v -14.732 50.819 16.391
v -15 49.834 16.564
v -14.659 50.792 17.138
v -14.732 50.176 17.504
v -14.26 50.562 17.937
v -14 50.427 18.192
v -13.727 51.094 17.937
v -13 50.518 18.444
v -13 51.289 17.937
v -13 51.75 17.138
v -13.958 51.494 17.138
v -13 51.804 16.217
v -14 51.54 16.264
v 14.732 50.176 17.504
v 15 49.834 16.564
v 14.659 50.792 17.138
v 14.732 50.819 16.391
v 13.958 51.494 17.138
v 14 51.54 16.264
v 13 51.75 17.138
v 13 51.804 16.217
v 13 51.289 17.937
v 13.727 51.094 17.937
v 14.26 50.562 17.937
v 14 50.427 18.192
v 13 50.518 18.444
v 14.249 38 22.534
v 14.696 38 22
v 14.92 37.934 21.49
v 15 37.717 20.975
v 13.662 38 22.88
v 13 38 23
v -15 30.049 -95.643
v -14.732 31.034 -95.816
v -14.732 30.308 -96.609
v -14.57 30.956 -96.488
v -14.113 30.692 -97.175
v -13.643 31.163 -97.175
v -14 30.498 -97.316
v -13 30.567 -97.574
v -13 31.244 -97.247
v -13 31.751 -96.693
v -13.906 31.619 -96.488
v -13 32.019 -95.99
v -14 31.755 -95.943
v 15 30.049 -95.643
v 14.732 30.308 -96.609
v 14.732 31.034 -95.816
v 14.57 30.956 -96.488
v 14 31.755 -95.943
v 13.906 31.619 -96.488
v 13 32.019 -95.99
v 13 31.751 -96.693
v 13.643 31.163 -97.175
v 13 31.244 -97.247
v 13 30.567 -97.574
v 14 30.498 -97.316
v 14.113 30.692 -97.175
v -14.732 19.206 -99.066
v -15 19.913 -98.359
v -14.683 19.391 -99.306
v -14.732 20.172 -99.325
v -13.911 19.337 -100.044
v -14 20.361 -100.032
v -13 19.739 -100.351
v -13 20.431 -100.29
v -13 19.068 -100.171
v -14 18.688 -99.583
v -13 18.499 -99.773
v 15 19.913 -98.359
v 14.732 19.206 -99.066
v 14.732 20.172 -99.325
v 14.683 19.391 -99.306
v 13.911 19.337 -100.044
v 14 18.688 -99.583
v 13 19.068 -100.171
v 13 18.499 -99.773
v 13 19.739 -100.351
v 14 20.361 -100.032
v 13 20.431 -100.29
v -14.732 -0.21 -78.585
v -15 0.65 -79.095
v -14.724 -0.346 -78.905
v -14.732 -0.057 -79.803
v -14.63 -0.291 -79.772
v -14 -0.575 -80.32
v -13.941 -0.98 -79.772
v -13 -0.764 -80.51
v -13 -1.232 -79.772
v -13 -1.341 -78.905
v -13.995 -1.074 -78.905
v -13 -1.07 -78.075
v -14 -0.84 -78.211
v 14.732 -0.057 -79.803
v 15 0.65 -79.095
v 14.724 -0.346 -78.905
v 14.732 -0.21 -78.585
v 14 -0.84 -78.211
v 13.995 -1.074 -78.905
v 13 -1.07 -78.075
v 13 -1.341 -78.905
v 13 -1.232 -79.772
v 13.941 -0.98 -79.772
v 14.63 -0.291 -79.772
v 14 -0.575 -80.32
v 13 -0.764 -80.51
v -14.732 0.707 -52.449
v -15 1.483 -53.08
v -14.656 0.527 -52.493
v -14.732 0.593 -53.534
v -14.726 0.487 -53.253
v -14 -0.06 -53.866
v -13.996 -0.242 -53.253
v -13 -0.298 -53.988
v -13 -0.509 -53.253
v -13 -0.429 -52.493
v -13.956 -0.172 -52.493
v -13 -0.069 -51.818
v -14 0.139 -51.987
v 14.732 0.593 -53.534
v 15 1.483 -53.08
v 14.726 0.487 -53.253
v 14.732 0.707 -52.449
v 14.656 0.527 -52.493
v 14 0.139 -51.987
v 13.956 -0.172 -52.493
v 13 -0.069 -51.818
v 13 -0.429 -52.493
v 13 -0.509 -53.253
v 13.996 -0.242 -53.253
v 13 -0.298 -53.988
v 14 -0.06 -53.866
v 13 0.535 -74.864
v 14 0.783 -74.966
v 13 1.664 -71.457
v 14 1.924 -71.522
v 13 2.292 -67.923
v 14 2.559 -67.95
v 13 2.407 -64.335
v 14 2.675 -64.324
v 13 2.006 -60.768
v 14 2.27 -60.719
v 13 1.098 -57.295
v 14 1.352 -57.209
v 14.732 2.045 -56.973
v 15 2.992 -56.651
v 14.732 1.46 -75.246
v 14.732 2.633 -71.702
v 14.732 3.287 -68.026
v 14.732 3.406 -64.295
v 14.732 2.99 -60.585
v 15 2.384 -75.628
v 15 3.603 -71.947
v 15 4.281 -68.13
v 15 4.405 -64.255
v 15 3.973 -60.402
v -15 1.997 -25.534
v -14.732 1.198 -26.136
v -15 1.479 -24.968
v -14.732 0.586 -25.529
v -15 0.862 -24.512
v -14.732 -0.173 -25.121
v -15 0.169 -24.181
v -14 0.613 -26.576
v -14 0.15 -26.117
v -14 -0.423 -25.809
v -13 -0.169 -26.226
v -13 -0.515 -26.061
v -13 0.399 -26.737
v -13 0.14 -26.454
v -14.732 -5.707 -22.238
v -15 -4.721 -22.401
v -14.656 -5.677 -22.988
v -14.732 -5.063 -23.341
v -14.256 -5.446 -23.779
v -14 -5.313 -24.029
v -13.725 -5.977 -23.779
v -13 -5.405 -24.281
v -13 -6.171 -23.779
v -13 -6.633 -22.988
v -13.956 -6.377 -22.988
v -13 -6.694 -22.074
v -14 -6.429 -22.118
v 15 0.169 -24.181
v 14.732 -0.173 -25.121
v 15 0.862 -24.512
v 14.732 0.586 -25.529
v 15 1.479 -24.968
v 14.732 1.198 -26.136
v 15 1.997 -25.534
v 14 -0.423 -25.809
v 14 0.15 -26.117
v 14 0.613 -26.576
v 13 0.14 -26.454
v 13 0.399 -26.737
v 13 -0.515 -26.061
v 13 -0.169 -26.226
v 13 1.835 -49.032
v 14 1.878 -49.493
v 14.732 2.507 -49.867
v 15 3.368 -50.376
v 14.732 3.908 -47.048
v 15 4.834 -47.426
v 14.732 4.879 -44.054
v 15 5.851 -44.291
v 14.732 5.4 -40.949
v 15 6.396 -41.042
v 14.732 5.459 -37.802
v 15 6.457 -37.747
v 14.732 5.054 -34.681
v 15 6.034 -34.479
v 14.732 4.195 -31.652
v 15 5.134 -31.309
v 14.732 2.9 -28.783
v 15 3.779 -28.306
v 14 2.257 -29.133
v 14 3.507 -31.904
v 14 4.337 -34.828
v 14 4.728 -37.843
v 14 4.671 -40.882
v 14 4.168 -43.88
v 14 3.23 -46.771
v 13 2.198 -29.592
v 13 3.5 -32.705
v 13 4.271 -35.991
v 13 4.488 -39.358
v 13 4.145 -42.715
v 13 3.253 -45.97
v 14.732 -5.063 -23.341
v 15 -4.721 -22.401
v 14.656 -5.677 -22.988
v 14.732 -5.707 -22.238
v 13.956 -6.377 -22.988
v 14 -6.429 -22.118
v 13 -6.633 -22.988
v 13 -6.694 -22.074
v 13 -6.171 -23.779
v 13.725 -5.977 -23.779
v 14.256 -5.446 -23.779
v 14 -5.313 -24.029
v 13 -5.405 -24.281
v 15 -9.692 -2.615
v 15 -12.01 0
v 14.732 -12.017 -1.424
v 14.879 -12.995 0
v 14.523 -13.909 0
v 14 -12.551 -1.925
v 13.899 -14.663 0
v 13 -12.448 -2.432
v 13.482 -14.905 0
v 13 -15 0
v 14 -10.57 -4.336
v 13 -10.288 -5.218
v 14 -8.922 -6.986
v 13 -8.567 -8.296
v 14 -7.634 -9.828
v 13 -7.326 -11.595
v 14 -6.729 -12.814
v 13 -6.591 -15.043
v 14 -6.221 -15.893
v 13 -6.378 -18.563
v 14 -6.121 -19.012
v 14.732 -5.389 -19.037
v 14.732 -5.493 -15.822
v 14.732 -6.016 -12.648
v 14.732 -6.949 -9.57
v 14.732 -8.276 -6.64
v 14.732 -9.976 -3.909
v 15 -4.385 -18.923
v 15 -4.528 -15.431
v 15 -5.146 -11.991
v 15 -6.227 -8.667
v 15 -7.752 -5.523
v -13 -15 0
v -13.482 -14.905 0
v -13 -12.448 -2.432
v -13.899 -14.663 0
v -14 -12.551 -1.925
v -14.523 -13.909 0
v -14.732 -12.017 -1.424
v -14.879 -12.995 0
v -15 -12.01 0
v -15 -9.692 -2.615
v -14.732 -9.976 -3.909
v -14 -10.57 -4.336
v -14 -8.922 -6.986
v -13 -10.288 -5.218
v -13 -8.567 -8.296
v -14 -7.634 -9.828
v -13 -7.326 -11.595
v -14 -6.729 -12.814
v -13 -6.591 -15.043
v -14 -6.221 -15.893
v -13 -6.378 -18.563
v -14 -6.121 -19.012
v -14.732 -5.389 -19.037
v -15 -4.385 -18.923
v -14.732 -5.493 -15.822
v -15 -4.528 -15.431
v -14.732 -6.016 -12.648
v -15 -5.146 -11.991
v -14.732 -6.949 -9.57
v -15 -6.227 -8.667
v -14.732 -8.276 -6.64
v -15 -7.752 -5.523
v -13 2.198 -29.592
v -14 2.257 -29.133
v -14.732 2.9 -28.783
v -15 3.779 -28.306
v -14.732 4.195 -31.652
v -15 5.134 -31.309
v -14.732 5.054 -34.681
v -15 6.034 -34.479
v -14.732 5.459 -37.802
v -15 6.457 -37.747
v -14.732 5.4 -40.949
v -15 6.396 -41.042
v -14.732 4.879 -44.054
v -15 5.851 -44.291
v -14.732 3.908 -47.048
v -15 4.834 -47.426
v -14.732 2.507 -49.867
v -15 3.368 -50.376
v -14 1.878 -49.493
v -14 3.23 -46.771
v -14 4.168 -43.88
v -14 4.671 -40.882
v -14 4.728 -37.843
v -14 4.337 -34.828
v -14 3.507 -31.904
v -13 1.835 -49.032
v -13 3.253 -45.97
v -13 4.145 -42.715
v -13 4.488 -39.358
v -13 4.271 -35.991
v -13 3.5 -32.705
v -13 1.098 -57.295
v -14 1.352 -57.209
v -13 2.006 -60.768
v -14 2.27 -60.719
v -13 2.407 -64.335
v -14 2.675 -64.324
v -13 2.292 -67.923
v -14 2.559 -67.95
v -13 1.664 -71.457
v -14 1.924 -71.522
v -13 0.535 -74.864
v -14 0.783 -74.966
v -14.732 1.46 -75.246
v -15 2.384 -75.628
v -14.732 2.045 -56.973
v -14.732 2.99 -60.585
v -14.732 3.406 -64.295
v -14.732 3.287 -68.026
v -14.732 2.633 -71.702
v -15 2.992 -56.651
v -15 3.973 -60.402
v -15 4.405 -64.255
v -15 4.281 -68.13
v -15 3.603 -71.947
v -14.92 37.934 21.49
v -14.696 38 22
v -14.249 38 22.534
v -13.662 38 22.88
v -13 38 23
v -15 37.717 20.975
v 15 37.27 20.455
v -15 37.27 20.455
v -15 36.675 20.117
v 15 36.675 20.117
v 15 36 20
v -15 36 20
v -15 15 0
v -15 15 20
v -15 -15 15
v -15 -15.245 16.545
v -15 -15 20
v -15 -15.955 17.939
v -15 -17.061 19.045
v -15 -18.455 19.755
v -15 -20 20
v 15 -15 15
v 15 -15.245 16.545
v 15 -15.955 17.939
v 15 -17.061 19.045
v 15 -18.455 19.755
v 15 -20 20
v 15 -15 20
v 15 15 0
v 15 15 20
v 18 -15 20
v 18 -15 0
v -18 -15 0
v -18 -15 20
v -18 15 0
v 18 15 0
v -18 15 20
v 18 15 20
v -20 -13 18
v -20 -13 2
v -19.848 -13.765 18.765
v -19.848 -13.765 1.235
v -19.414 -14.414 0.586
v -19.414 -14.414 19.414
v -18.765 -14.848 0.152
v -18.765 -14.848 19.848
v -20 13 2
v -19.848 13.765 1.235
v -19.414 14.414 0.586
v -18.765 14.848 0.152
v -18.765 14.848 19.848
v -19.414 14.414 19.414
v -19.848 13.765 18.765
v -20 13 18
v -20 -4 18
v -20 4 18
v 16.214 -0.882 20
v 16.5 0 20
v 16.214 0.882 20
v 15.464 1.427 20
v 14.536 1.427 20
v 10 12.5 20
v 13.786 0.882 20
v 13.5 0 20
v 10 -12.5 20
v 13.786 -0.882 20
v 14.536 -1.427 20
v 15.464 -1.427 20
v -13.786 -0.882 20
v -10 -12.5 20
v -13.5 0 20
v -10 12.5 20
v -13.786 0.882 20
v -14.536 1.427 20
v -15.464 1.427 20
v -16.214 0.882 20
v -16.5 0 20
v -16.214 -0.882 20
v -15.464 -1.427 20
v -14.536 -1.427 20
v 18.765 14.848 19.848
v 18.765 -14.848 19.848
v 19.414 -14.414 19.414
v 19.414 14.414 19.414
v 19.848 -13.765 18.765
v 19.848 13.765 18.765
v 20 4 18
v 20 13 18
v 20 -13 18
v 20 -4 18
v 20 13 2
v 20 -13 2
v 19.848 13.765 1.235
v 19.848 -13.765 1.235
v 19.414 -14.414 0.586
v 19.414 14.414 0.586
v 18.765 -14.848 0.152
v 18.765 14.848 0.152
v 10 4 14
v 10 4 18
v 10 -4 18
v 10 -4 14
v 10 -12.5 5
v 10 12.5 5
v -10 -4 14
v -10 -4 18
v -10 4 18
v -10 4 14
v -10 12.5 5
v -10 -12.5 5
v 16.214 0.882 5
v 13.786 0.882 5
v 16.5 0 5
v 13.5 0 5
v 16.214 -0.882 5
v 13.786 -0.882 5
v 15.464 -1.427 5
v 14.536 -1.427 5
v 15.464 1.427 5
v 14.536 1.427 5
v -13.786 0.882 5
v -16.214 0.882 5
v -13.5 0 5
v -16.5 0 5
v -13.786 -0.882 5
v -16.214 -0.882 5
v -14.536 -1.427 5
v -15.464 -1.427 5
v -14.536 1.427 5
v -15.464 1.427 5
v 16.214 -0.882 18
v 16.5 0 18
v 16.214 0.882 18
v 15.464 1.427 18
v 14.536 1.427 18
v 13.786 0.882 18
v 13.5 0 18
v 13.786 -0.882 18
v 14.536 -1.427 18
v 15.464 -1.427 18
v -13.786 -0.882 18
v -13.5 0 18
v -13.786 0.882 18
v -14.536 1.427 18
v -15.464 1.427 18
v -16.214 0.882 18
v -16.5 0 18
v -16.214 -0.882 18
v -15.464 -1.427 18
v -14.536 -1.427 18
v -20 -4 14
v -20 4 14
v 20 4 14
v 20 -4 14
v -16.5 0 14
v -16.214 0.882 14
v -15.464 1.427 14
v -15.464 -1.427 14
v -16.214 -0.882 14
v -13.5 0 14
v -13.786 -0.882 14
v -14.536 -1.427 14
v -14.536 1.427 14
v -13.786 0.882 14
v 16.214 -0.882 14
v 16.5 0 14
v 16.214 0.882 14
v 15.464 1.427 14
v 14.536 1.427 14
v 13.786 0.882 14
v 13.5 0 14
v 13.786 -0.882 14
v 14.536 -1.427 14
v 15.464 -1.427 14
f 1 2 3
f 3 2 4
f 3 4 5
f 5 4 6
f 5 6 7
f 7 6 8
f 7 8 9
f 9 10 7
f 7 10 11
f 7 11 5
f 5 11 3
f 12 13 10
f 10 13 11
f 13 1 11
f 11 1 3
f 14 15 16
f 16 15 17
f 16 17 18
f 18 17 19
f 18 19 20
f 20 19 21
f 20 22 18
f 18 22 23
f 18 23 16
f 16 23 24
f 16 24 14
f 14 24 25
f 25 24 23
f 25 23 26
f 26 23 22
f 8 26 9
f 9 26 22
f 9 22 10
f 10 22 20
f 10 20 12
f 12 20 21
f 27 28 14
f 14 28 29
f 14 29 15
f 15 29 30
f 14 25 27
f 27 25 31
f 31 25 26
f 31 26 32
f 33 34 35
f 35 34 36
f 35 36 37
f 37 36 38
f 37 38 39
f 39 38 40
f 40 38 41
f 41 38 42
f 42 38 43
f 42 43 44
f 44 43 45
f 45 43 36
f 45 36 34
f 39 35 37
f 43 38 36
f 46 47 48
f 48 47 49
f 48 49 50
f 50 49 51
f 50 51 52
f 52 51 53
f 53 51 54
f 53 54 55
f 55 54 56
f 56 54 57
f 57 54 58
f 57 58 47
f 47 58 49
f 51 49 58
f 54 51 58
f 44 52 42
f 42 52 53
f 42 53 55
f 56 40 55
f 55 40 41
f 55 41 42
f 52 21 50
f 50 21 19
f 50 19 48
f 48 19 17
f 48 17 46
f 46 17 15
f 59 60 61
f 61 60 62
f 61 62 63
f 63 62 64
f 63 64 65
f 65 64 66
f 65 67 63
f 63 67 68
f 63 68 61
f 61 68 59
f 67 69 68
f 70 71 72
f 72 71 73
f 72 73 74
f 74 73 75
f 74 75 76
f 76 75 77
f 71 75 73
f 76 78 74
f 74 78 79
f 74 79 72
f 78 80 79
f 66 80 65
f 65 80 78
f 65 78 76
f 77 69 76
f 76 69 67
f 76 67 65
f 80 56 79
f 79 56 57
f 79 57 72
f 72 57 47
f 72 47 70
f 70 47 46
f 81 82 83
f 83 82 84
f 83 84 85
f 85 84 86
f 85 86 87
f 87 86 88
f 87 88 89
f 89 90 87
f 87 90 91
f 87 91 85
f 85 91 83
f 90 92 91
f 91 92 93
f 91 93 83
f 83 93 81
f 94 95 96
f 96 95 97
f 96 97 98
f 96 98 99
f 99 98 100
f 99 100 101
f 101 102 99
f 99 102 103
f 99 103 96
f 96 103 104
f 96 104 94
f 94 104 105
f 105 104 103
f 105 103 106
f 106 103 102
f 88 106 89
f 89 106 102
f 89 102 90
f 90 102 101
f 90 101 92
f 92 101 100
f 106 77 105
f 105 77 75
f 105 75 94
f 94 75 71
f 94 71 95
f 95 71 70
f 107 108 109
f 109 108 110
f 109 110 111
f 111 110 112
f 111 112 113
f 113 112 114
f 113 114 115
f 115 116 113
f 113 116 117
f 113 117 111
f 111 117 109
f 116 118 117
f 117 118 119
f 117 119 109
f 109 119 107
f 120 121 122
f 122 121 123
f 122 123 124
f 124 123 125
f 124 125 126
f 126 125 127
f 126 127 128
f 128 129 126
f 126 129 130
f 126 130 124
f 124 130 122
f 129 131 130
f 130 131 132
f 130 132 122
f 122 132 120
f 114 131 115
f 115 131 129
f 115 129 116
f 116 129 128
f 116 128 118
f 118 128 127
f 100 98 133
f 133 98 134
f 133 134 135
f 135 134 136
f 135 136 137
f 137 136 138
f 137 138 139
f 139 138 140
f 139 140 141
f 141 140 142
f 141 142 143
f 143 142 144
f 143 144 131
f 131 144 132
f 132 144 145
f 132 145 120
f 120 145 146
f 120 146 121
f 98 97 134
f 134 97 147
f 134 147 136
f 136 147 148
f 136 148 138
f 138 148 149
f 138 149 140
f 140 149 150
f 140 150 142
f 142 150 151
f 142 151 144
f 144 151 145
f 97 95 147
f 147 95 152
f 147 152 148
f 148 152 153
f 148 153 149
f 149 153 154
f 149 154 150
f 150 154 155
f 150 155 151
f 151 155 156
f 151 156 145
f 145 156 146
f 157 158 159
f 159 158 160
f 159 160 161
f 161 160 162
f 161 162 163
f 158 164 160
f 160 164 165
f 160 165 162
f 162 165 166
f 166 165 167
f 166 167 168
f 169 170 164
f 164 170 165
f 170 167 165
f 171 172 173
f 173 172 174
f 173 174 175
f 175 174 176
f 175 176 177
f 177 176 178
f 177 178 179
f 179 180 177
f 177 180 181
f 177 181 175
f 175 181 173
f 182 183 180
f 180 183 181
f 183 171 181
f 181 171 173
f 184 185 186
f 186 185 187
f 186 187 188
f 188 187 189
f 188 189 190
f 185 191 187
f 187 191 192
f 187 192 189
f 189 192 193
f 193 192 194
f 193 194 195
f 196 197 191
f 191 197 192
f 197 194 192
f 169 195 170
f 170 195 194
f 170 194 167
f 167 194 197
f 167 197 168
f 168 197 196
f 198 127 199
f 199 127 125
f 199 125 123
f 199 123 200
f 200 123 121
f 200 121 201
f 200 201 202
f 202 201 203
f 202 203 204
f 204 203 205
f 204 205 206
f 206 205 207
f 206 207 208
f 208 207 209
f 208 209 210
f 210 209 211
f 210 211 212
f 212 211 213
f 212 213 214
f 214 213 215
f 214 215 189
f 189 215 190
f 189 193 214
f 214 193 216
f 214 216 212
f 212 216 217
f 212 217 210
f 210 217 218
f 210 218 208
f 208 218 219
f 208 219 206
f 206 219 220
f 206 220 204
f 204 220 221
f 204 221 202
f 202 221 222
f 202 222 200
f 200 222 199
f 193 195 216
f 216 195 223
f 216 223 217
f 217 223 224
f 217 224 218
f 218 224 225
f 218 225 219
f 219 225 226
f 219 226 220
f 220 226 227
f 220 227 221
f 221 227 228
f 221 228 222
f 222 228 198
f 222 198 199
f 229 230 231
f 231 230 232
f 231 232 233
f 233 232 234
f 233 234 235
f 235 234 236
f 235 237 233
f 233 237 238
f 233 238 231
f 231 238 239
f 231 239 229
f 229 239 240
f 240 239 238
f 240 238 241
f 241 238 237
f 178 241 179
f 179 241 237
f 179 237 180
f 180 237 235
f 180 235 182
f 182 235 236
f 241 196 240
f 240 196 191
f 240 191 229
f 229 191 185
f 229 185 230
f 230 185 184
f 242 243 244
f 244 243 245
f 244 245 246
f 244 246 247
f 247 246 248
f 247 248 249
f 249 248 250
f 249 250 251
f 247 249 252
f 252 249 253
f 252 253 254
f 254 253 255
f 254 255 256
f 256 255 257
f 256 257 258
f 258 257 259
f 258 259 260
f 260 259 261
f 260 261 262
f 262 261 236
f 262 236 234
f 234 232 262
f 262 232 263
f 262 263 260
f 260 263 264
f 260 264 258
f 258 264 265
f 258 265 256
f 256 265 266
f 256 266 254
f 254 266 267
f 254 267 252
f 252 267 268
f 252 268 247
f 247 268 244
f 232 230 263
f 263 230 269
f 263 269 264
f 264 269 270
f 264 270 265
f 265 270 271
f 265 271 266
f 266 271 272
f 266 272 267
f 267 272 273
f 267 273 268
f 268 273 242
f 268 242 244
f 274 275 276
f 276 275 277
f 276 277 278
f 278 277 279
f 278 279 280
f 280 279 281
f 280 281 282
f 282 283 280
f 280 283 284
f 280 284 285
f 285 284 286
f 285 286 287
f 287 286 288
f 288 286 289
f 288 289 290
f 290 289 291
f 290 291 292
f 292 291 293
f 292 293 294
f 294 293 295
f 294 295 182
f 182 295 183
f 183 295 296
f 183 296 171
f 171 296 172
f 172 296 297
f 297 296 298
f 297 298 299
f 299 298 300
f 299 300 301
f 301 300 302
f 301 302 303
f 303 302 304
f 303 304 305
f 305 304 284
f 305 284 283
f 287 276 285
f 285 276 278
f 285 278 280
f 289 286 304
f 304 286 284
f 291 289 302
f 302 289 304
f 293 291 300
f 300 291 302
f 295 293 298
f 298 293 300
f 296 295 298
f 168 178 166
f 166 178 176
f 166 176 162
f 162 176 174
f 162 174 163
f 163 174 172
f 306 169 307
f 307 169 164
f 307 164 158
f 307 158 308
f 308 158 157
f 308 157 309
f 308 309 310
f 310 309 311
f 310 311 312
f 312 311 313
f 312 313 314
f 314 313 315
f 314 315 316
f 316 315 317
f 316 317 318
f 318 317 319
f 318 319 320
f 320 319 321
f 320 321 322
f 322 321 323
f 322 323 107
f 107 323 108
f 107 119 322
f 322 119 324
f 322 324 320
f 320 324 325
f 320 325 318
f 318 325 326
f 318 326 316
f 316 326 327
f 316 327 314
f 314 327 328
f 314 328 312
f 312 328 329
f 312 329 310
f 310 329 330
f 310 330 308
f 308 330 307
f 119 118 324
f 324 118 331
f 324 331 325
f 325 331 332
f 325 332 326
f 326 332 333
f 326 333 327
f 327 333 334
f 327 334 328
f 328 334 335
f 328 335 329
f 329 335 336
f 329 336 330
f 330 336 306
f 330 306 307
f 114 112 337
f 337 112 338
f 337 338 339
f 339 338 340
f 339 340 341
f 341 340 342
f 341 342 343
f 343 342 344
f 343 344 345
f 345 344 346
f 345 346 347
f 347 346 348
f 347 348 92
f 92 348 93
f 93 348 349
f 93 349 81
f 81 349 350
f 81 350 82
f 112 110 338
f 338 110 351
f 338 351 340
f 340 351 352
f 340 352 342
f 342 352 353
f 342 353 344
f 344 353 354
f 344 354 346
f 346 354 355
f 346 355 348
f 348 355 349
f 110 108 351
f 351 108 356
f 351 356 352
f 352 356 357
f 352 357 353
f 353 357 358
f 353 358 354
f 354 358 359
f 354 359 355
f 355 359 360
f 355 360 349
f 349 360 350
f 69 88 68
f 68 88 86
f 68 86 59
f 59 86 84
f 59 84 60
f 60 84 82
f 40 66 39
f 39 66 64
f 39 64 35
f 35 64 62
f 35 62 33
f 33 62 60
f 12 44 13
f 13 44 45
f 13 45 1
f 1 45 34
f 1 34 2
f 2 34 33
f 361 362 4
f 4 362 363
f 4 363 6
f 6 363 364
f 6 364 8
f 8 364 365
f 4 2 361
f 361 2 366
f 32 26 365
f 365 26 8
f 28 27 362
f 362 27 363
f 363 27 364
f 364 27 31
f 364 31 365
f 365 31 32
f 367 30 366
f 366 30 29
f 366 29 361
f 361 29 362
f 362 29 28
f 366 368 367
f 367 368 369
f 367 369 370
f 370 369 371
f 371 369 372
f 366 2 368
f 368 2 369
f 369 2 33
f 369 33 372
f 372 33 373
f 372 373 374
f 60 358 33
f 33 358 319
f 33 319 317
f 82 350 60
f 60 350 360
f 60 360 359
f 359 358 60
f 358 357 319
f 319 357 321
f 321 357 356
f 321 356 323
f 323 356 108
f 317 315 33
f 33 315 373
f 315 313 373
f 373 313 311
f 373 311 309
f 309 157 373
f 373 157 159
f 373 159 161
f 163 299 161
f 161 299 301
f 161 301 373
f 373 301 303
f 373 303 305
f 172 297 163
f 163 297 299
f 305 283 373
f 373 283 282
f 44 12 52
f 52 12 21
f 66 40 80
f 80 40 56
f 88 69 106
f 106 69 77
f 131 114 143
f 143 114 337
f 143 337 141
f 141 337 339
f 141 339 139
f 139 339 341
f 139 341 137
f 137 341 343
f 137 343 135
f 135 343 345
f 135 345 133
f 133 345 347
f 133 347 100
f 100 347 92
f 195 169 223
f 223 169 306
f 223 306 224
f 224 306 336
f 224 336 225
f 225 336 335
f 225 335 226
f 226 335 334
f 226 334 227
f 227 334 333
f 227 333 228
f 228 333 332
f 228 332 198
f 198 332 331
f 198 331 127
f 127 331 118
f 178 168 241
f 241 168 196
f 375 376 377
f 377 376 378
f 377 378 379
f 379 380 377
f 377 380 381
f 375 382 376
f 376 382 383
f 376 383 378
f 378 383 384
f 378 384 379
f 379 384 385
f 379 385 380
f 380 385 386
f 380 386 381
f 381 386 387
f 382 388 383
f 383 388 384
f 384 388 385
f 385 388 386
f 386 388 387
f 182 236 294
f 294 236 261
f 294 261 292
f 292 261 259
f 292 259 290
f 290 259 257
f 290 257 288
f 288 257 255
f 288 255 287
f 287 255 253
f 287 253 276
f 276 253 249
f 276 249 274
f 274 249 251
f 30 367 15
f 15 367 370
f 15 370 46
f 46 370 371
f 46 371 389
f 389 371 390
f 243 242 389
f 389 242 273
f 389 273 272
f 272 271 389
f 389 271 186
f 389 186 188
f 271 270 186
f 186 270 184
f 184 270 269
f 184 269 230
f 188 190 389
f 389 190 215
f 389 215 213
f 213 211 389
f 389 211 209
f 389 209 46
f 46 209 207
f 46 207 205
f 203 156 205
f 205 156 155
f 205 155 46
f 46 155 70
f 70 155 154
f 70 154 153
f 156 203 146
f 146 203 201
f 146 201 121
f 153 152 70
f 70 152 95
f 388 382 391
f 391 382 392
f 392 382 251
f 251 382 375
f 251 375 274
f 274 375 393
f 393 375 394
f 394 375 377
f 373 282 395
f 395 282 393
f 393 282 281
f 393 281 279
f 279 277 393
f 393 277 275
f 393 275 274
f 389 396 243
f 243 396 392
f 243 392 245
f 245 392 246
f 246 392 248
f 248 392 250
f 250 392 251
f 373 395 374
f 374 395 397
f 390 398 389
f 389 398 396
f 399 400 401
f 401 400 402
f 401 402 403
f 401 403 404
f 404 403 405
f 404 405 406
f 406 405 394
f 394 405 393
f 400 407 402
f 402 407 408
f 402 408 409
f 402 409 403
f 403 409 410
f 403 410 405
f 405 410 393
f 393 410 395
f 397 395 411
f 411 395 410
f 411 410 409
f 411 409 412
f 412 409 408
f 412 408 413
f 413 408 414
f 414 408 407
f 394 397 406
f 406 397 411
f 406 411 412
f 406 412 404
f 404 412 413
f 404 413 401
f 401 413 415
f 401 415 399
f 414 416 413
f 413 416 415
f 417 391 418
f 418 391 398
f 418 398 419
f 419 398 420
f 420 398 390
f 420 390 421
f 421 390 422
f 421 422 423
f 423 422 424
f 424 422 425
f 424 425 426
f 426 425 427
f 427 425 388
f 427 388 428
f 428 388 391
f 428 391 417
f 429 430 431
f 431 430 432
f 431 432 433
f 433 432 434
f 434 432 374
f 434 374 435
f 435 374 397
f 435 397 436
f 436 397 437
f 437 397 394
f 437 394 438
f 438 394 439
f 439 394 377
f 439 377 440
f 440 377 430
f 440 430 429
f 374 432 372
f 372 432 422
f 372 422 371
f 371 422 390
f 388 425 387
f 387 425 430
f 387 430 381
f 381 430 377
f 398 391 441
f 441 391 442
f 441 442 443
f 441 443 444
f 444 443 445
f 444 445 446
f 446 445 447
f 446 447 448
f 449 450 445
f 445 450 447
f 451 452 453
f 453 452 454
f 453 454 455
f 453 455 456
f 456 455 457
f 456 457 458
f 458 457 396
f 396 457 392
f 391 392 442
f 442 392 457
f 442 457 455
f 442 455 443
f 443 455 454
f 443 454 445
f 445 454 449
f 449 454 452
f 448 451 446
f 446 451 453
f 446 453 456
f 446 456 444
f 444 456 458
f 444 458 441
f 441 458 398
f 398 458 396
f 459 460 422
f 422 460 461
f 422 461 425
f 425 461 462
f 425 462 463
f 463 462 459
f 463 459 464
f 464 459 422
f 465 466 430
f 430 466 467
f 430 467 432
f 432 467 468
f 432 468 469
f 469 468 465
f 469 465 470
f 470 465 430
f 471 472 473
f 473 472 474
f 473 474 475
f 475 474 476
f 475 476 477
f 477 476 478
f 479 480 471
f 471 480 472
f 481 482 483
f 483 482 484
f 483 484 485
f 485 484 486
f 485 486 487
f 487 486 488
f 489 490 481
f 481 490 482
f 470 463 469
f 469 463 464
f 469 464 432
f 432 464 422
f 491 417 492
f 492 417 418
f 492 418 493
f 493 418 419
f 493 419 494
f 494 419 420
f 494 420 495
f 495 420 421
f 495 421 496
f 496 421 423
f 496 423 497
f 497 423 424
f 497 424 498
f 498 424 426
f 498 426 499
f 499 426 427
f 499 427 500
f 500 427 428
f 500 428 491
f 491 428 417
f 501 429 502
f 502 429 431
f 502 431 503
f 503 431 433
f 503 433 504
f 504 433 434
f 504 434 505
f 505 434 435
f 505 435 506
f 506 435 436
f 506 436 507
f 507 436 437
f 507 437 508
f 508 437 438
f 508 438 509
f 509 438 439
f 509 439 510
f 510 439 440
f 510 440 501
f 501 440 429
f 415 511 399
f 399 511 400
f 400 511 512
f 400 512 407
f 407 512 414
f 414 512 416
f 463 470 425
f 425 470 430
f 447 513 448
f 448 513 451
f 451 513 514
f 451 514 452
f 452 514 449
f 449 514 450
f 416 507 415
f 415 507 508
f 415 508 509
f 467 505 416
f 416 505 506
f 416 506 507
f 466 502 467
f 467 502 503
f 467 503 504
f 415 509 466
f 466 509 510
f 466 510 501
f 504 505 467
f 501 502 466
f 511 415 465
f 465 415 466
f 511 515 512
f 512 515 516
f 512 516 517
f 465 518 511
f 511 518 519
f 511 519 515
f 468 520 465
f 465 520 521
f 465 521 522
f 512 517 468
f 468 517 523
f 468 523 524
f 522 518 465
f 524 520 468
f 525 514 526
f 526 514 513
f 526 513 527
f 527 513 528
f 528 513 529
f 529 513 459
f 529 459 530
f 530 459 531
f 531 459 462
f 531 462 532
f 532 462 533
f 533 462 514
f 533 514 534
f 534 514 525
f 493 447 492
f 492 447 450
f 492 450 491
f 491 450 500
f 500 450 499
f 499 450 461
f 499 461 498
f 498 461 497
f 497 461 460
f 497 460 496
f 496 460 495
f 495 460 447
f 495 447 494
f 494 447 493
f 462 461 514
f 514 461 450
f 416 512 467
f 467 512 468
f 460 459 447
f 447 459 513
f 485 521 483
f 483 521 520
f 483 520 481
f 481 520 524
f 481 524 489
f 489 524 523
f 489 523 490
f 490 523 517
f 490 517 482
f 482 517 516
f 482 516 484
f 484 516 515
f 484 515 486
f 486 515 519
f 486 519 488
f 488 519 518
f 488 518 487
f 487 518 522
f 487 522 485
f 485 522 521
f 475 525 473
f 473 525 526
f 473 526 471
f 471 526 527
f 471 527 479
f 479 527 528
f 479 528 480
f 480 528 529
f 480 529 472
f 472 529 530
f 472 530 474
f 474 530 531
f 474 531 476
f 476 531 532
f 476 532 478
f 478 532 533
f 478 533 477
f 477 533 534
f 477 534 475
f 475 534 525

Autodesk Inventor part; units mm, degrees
ref_plane "YZ Plane" through (0, 0, 0) normal (1, 0, 0) x (0, 1, 0)
ref_plane "XZ Plane" through (0, 0, 0) normal (0, 1, 0) x (-1, 0, 0)
ref_plane "XY Plane" through (0, 0, 0) normal (0, 0, 1) x (1, 0, 0)
sketch "Sketch5" plane through (0, 0, 0) normal (0, 0, 1) x (1, 0, 0)
  line L0 (-10, -12.5) -> (10, -12.5)
  line L1 (10, -12.5) -> (10, 12.5)
  line L2 (10, 12.5) -> (-10, 12.5)
  line L3 (-10, 12.5) -> (-10, -12.5)
  line L4 (-10, -12.5) -> (10, 12.5) construction
  line L5 (10, -12.5) -> (-10, 12.5) construction
  circle A0 centre (15, 0) radius 1.5
  circle A1 centre (-15, 0) radius 1.5
  line L6 (-20, -15) -> (20, -15)
  line L7 (20, -15) -> (20, 15)
  line L8 (20, 15) -> (-20, 15)
  line L9 (-20, 15) -> (-20, -15)
  line L10 (-20, -15) -> (20, 15) construction
  line L11 (20, -15) -> (-20, 15) construction
  line L12 (-20, 0) -> (20, 0)
  line L13 (0, -15) -> (0, 15)
  point P0 (0, 0)
  dimension "d27" = 20
  dimension "d28" = 25
  dimension "d29" = 3
  dimension "d30" = 15
  dimension "d31" = 30
  dimension "d36" = 40
extrude "Extrusion4" add sketch "Sketch5" along normal blind 20 contours L0 L13 L6 L9 L12 A1 L3 | L0 L1 L12 A0 L7 L6 L13 | L12 A1 L9 L8 L13 L2 L3 | L1 L2 L13 L8 L7 L12 A0
extrude "Extrusion5" add sketch "Sketch5" along normal blind 5 contours L3 L12 L13 L0 | L13 L12 L1 L0 | L3 L2 L13 L12 | L13 L2 L1 L12
extrude "Extrusion6" add sketch "Sketch5" along normal blind 5 contours L12 A1 | A1 L12 | L12 A0 | A0 L12
fillet "Fillet3" radius 2 8 edges at (20, 0, 0) (20, 15, 10) (20, 0, 20) (20, -15, 10) (-20, 0, 0) (-20, -15, 10) (-20, 0, 20) (-20, 15, 10)
sketch "Sketch9" plane through (0, 0, 0) normal (1, 0, 0) x (0, 1, 0)
  line L0 (-12.5, 20) -> (12.5, 20) projected
  line L1 (-36, 20) -> (36, 20)
  arc A0 (36, 20) -> (38, 22) centre (36, 22) ccw
  line L2 (38, 22) -> (38, 23)
  line L3 (15, 0) -> (15, 20) projected
  line L4 (38, 23) -> (52.0954, 17.8697)
  line L5 (38, 23) -> (53, 23) construction
  line L6 (-15, 0) -> (-15, 20) projected
  line L7 (-15, 0) -> (-5, 0) construction
  line L8 (-15, 0) -> (15, 0)
  line L9 (15, 20) -> (15, 0)
  line L10 (-15, 0) -> (-15, 20)
  line L11 (-15, 20) -> (-20, 20)
  arc A1 (-15, 15) -> (-20, 20) centre (-20, 15) ccw
  line L12 (-20, 20) -> (-15, 15) construction
  line L13 (-20, 20) -> (-12.9289, 20) construction
  line L14 (-1.898, -79.3761) -> (19.3152, -100.5893)
  line L15 (19.3152, -100.5893) -> (31.7976, -97.2447)
  line L16 (52.0954, 17.8697) -> (31.7976, -97.2447)
  line L17 (-15, 0) -> (-7.0211, -23.6926)
  arc A2 (-7.0211, -23.6926) -> (-15, 0) centre (-29.9276, -18.217) ccw
  line L18 (-7.0211, -23.6926) -> (0.0266, -26.2577)
  line L19 (-7.0211, -23.6926) -> (0.4789, -23.6926) construction
  line L20 (0.0266, -26.2577) -> (-1.898, -79.3761)
  arc A3 (-0.9357, -52.8168) -> (0.0266, -26.2577) centre (-15.8648, -38.9789) ccw
  arc A4 (-1.898, -79.3761) -> (-0.9357, -52.8168) centre (-22.5407, -65.3311) ccw
  point P0 (0, 0)
  point P1 (0, 20)
  dimension "d46" = 72
  dimension "d47" = 2
  dimension "d48" = 1
  dimension "d60" = 15
  dimension "d61" = 20
  dimension "d73" = 5
  dimension "d74" = 45
  dimension "d79" = 30
  dimension "d81" = 120
  dimension "d91" = 25
  dimension "d94" = 7.5
  dimension "d95" = 20
  dimension "d96" = 26.5765
extrude "Extrusion10" add sketch "Sketch9" along normal mid plane 30 contours L6 A1 L1 | L1 A0 L2 L4 L16 L15 L14 A4 A3 L18 A2 L8 L3
fillet "Fillet4" radius 2 23 edges at (15, -7.6075, -10.7002) (0, 0.0266, -26.2577) (15, -3.4973, -24.9751) (0, -7.0211, -23.6926) (-15, -3.4973, -24.9751) (0, -1.898, -79.3761) (15, 2.4106, -66.2351) (0, -0.9357, -52.8168) (-15, 2.4106, -66.2351) (15, 4.4778, -39.716) (-15, 4.4778, -39.716) (0, 19.3152, -100.5893) (15, 8.7086, -89.9827) (-15, 8.7086, -89.9827) (0, 31.7976, -97.2447) (15, 25.5564, -98.917) (-15, 25.5564, -98.917) (-15, -7.6075, -10.7002) (0, 52.0954, 17.8697) (15, 41.9465, -39.6875) (-15, 41.9465, -39.6875) (-15, 45.0477, 20.4348) (15, 45.0477, 20.4348)
thread "Thread3" size "M3x0.5" class "6H" standard "ANSI Metric M Profile" length 8.001
thread "Thread4" size "M3x0.5" class "6H" standard "ANSI Metric M Profile" length 8.001
sketch "Sketch10" plane through (20, -13, 2) normal (1, 0, 0) x (0, 0, -1)
  line L0 (-16, 0) -> (-16, 26) projected
  line L1 (-16, 13) -> (-12, 13)
  line L2 (-12, 13) -> (-12, 17)
  line L3 (-12, 17) -> (-16, 17)
  line L4 (-16, 17) -> (-16, 13)
  line L5 (-16, 13) -> (-12, 13)
  line L6 (-12, 13) -> (-12, 9)
  line L7 (-12, 9) -> (-16, 9)
  line L8 (-16, 9) -> (-16, 13)
  point P0 (2, 13)
  dimension "d104" = 4
  dimension "d105" = 4
  dimension "d106" = 4
extrude "Extrusion11" cut sketch "Sketch10" against normal through all
properties part number "Controller Handle"
